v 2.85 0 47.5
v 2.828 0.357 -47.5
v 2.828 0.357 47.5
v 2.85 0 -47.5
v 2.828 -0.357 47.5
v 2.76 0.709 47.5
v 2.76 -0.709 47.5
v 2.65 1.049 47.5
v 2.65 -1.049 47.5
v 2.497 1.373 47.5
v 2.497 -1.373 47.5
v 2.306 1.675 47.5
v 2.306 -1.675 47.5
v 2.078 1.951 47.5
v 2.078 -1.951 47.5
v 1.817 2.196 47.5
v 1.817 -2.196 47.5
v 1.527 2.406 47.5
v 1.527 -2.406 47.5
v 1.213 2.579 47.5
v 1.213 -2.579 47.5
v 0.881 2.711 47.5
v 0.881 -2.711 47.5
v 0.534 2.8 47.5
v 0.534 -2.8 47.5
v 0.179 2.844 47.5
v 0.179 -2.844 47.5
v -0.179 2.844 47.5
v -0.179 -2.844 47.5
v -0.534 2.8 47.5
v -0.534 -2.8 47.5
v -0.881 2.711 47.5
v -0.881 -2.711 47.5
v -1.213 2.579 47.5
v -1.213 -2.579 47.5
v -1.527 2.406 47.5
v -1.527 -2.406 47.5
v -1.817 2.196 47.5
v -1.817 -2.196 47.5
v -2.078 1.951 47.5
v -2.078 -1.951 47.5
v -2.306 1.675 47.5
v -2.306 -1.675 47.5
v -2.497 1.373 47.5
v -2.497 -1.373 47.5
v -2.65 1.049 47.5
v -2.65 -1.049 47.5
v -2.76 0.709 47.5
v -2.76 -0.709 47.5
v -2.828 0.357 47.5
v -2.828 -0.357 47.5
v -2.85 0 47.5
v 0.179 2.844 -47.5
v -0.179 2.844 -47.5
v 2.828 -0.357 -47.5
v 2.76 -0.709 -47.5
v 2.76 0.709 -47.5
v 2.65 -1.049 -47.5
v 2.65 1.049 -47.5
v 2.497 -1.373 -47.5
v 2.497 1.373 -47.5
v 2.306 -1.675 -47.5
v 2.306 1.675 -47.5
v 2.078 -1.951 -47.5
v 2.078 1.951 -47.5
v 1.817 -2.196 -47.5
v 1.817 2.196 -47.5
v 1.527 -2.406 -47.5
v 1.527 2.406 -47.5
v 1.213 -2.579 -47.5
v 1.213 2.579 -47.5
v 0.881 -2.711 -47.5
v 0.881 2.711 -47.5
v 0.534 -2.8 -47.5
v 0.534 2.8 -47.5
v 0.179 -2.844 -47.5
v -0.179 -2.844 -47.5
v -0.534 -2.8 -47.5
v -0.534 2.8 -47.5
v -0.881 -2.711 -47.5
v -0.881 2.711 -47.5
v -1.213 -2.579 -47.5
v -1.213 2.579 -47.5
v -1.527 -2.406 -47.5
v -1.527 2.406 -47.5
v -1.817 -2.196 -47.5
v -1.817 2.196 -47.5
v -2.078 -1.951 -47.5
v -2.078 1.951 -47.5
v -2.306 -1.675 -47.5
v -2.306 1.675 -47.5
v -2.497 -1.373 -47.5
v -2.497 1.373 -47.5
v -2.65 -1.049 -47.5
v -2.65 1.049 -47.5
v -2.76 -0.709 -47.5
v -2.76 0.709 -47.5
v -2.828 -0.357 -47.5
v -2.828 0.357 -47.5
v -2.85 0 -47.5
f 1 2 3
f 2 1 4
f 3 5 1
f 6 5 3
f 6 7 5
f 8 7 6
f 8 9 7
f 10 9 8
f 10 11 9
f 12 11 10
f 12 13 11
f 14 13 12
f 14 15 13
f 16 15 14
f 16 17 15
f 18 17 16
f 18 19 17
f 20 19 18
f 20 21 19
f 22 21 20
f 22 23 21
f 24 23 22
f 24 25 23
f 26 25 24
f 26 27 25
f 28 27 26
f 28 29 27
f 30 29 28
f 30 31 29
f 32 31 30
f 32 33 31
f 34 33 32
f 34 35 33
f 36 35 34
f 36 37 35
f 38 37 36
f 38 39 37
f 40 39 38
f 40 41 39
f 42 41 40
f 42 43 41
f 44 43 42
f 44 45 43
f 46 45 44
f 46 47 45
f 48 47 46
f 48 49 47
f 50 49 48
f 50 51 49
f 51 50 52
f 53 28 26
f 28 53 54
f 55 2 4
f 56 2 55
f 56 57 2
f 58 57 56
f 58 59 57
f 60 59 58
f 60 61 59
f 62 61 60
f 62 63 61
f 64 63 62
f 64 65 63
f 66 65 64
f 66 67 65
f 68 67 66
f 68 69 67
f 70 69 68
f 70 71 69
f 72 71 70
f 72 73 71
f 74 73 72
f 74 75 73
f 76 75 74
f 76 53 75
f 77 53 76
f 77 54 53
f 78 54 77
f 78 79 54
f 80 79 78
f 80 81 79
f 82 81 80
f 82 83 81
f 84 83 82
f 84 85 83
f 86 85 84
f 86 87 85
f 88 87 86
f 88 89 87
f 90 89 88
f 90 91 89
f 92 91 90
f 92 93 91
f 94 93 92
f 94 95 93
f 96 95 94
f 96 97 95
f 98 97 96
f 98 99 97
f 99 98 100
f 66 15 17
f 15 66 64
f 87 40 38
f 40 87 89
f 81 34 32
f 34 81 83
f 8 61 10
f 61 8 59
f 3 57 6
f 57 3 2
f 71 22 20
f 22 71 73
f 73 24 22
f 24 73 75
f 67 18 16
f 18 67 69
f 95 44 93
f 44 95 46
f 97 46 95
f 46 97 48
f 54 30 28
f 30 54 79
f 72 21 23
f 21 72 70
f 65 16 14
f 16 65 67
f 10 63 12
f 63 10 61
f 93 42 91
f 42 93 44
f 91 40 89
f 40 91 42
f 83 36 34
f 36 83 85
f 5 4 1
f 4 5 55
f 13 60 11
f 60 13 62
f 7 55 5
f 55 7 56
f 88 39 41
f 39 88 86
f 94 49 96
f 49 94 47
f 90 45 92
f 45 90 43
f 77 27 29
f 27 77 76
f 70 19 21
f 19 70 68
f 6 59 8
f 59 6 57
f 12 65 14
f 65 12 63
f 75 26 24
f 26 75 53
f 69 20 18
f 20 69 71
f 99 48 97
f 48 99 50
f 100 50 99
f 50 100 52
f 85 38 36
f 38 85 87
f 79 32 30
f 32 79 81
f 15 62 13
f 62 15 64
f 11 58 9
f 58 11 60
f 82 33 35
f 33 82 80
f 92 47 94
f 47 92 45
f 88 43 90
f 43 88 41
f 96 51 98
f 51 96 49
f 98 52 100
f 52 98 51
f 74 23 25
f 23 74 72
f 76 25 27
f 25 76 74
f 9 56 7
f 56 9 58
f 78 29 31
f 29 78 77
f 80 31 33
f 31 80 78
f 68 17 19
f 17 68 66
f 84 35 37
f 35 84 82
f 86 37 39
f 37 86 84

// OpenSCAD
$fn = 50;


difference() {
	union() {
		translate(v = [0, 0, -47.5000000000]) {
			cylinder(h = 95, r = 2.8500000000);
		}
	}
	union() {
		translate(v = [0, 0, -100.0000000000]) {
			cylinder(h = 200, r = 0);
		}
	}
}
